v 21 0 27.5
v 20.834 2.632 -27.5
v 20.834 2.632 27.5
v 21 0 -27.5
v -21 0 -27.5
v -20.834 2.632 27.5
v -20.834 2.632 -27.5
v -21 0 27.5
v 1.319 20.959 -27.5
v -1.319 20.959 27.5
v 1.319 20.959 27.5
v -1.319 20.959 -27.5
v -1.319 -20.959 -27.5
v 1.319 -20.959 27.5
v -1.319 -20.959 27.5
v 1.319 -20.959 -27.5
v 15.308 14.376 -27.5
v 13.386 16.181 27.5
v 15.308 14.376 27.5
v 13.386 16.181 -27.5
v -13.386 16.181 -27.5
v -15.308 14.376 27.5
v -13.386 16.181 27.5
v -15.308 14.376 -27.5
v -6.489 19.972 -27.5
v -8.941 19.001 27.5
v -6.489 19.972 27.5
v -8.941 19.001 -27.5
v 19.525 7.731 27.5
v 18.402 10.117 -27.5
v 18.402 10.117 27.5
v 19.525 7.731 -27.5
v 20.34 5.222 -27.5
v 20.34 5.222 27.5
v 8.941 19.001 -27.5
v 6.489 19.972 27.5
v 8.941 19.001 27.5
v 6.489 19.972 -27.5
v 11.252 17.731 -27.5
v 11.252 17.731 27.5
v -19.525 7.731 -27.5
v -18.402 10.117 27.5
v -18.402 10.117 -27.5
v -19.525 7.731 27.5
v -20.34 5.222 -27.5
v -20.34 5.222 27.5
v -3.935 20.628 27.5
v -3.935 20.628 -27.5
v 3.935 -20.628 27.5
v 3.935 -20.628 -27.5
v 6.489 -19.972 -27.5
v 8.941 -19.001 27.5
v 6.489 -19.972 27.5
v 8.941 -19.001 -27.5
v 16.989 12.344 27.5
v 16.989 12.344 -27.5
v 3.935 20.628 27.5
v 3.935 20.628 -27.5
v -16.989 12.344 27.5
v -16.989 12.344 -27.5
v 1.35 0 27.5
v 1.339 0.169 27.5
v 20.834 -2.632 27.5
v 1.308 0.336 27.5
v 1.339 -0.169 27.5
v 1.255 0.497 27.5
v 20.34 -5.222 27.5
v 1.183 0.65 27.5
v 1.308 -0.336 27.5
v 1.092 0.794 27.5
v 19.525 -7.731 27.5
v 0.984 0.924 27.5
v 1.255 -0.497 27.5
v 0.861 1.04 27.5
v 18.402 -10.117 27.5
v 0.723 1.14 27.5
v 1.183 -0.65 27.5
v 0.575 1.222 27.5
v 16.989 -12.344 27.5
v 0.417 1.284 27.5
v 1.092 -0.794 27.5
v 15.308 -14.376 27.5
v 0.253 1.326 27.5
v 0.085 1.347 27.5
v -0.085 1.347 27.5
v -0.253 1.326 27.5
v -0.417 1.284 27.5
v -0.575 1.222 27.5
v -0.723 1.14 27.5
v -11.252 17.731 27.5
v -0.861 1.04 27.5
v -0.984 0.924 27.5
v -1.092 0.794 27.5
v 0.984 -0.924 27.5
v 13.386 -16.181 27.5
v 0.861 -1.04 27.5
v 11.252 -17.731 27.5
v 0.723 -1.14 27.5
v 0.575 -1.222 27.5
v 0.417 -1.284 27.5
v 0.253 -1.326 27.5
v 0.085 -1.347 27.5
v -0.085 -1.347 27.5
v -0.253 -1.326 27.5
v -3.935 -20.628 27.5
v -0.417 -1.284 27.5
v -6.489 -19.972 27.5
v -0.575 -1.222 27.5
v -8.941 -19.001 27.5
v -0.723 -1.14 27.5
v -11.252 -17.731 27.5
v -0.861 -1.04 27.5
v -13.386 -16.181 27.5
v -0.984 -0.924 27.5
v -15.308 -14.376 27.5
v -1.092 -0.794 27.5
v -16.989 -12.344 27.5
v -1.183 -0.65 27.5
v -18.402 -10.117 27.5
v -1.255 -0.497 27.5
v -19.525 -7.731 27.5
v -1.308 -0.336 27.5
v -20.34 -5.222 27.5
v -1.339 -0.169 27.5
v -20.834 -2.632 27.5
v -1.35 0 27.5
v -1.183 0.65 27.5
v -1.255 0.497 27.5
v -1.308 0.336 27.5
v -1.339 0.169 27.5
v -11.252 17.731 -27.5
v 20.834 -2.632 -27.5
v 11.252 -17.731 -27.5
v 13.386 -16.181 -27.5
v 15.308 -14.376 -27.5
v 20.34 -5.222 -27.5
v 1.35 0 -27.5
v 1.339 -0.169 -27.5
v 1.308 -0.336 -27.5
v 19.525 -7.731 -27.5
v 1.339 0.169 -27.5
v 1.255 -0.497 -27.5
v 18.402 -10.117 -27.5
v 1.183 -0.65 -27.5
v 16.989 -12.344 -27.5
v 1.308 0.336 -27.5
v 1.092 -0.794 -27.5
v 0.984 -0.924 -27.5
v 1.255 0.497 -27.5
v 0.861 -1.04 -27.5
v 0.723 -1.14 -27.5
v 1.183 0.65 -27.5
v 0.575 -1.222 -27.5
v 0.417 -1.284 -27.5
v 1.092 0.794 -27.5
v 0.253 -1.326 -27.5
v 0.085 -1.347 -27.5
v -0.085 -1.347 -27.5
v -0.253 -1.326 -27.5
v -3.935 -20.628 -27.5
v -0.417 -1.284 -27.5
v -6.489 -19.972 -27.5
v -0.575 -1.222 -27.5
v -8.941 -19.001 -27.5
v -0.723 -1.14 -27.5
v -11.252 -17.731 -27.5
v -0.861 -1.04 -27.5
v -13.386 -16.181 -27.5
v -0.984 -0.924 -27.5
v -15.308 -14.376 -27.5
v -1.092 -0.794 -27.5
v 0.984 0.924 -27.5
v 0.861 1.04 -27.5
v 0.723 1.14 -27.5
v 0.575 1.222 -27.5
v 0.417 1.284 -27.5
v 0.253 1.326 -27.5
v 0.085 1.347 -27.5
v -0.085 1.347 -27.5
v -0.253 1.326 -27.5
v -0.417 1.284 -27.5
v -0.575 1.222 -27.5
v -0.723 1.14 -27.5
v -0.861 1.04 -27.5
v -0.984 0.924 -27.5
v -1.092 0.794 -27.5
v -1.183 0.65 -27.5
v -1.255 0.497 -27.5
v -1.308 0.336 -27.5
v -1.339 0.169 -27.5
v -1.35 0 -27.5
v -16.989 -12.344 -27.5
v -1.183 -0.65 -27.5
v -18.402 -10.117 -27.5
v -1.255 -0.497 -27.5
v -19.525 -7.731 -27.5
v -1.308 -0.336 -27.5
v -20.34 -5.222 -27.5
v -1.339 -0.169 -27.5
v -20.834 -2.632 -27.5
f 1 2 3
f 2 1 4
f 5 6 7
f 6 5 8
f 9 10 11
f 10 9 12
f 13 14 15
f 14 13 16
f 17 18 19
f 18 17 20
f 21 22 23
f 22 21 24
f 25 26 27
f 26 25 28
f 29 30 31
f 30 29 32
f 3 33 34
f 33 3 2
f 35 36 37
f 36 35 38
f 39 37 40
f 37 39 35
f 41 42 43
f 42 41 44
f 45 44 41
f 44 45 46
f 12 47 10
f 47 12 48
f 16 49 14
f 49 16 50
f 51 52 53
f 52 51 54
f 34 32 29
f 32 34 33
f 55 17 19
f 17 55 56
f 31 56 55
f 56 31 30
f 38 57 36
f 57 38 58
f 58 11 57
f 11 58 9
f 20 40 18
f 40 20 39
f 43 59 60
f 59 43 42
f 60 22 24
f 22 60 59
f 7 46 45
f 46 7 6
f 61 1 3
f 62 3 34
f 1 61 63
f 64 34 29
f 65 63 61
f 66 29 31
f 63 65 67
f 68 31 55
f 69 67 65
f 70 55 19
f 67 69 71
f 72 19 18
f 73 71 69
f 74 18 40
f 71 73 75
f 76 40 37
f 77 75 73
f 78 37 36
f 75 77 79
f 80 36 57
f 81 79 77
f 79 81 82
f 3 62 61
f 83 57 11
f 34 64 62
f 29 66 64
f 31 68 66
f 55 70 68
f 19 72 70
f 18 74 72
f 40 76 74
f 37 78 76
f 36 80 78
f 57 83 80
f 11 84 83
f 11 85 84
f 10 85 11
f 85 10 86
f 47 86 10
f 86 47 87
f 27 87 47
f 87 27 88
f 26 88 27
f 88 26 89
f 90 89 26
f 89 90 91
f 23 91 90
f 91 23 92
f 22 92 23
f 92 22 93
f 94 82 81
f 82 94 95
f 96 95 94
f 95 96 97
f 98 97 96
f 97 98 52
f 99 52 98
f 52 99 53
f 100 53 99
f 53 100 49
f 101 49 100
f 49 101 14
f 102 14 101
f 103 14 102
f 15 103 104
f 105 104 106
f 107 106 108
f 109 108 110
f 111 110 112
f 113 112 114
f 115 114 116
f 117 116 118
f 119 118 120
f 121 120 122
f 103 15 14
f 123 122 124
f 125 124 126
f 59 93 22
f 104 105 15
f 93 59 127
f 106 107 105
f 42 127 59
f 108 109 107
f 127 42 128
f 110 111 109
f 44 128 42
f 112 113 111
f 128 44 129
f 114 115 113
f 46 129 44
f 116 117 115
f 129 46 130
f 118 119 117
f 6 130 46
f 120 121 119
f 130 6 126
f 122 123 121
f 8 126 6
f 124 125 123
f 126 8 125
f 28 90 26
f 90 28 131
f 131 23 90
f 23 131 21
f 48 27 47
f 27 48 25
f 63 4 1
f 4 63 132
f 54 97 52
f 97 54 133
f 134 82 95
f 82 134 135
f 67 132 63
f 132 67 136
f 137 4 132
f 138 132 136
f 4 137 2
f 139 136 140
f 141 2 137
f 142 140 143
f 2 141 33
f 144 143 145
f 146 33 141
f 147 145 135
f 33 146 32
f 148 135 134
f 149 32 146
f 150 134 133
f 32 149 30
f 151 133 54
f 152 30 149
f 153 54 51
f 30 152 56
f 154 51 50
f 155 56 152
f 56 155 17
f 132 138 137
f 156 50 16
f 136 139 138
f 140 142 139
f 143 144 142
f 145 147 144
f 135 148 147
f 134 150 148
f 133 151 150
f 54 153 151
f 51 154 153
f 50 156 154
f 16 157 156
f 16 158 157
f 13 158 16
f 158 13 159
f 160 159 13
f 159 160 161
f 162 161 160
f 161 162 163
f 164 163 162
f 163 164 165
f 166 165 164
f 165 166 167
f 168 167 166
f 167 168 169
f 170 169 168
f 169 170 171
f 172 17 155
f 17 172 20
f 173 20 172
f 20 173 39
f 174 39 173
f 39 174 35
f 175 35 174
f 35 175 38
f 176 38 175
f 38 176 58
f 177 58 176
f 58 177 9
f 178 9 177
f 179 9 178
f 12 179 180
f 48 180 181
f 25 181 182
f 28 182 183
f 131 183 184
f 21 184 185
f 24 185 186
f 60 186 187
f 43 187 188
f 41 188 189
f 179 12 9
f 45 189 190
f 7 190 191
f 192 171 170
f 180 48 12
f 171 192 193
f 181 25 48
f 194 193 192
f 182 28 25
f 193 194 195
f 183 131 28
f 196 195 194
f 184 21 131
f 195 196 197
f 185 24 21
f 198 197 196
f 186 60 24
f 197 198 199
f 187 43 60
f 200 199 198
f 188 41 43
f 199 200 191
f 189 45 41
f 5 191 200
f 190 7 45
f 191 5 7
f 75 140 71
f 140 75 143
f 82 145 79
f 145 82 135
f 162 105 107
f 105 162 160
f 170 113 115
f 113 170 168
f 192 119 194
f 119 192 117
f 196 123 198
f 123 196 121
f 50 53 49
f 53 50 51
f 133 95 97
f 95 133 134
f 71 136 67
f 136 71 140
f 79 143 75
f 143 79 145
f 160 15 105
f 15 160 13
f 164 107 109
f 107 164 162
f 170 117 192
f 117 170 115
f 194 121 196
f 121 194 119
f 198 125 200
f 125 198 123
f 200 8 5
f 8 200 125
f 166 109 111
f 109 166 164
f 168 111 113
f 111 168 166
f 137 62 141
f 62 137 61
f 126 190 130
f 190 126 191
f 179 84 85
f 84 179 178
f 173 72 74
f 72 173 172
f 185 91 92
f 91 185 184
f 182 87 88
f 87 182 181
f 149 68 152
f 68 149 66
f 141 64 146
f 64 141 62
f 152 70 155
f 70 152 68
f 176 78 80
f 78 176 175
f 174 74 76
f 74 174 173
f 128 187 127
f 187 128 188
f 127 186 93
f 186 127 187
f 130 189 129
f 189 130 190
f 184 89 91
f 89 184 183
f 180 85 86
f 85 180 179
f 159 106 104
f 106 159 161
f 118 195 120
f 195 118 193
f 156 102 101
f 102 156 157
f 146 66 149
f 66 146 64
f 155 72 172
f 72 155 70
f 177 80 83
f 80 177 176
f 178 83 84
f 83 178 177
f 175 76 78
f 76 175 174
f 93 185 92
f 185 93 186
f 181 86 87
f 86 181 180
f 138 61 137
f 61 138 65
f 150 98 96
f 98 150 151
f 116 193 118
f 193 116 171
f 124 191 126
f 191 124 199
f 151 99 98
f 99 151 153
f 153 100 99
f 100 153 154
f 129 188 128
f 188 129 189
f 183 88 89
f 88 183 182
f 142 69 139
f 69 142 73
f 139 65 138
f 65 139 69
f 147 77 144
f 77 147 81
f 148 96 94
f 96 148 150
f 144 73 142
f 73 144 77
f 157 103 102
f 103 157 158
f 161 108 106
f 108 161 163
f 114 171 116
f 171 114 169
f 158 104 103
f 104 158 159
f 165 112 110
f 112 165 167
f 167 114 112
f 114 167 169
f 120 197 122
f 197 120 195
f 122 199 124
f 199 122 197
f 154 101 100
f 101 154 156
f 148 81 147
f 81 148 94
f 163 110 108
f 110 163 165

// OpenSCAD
$fn = 50;


difference() {
	union() {
		translate(v = [0, 0, -27.5000000000]) {
			cylinder(h = 55, r = 21.0000000000);
		}
	}
	union() {
		translate(v = [0, 0, -100.0000000000]) {
			cylinder(h = 200, r = 1.3500000000);
		}
	}
}
